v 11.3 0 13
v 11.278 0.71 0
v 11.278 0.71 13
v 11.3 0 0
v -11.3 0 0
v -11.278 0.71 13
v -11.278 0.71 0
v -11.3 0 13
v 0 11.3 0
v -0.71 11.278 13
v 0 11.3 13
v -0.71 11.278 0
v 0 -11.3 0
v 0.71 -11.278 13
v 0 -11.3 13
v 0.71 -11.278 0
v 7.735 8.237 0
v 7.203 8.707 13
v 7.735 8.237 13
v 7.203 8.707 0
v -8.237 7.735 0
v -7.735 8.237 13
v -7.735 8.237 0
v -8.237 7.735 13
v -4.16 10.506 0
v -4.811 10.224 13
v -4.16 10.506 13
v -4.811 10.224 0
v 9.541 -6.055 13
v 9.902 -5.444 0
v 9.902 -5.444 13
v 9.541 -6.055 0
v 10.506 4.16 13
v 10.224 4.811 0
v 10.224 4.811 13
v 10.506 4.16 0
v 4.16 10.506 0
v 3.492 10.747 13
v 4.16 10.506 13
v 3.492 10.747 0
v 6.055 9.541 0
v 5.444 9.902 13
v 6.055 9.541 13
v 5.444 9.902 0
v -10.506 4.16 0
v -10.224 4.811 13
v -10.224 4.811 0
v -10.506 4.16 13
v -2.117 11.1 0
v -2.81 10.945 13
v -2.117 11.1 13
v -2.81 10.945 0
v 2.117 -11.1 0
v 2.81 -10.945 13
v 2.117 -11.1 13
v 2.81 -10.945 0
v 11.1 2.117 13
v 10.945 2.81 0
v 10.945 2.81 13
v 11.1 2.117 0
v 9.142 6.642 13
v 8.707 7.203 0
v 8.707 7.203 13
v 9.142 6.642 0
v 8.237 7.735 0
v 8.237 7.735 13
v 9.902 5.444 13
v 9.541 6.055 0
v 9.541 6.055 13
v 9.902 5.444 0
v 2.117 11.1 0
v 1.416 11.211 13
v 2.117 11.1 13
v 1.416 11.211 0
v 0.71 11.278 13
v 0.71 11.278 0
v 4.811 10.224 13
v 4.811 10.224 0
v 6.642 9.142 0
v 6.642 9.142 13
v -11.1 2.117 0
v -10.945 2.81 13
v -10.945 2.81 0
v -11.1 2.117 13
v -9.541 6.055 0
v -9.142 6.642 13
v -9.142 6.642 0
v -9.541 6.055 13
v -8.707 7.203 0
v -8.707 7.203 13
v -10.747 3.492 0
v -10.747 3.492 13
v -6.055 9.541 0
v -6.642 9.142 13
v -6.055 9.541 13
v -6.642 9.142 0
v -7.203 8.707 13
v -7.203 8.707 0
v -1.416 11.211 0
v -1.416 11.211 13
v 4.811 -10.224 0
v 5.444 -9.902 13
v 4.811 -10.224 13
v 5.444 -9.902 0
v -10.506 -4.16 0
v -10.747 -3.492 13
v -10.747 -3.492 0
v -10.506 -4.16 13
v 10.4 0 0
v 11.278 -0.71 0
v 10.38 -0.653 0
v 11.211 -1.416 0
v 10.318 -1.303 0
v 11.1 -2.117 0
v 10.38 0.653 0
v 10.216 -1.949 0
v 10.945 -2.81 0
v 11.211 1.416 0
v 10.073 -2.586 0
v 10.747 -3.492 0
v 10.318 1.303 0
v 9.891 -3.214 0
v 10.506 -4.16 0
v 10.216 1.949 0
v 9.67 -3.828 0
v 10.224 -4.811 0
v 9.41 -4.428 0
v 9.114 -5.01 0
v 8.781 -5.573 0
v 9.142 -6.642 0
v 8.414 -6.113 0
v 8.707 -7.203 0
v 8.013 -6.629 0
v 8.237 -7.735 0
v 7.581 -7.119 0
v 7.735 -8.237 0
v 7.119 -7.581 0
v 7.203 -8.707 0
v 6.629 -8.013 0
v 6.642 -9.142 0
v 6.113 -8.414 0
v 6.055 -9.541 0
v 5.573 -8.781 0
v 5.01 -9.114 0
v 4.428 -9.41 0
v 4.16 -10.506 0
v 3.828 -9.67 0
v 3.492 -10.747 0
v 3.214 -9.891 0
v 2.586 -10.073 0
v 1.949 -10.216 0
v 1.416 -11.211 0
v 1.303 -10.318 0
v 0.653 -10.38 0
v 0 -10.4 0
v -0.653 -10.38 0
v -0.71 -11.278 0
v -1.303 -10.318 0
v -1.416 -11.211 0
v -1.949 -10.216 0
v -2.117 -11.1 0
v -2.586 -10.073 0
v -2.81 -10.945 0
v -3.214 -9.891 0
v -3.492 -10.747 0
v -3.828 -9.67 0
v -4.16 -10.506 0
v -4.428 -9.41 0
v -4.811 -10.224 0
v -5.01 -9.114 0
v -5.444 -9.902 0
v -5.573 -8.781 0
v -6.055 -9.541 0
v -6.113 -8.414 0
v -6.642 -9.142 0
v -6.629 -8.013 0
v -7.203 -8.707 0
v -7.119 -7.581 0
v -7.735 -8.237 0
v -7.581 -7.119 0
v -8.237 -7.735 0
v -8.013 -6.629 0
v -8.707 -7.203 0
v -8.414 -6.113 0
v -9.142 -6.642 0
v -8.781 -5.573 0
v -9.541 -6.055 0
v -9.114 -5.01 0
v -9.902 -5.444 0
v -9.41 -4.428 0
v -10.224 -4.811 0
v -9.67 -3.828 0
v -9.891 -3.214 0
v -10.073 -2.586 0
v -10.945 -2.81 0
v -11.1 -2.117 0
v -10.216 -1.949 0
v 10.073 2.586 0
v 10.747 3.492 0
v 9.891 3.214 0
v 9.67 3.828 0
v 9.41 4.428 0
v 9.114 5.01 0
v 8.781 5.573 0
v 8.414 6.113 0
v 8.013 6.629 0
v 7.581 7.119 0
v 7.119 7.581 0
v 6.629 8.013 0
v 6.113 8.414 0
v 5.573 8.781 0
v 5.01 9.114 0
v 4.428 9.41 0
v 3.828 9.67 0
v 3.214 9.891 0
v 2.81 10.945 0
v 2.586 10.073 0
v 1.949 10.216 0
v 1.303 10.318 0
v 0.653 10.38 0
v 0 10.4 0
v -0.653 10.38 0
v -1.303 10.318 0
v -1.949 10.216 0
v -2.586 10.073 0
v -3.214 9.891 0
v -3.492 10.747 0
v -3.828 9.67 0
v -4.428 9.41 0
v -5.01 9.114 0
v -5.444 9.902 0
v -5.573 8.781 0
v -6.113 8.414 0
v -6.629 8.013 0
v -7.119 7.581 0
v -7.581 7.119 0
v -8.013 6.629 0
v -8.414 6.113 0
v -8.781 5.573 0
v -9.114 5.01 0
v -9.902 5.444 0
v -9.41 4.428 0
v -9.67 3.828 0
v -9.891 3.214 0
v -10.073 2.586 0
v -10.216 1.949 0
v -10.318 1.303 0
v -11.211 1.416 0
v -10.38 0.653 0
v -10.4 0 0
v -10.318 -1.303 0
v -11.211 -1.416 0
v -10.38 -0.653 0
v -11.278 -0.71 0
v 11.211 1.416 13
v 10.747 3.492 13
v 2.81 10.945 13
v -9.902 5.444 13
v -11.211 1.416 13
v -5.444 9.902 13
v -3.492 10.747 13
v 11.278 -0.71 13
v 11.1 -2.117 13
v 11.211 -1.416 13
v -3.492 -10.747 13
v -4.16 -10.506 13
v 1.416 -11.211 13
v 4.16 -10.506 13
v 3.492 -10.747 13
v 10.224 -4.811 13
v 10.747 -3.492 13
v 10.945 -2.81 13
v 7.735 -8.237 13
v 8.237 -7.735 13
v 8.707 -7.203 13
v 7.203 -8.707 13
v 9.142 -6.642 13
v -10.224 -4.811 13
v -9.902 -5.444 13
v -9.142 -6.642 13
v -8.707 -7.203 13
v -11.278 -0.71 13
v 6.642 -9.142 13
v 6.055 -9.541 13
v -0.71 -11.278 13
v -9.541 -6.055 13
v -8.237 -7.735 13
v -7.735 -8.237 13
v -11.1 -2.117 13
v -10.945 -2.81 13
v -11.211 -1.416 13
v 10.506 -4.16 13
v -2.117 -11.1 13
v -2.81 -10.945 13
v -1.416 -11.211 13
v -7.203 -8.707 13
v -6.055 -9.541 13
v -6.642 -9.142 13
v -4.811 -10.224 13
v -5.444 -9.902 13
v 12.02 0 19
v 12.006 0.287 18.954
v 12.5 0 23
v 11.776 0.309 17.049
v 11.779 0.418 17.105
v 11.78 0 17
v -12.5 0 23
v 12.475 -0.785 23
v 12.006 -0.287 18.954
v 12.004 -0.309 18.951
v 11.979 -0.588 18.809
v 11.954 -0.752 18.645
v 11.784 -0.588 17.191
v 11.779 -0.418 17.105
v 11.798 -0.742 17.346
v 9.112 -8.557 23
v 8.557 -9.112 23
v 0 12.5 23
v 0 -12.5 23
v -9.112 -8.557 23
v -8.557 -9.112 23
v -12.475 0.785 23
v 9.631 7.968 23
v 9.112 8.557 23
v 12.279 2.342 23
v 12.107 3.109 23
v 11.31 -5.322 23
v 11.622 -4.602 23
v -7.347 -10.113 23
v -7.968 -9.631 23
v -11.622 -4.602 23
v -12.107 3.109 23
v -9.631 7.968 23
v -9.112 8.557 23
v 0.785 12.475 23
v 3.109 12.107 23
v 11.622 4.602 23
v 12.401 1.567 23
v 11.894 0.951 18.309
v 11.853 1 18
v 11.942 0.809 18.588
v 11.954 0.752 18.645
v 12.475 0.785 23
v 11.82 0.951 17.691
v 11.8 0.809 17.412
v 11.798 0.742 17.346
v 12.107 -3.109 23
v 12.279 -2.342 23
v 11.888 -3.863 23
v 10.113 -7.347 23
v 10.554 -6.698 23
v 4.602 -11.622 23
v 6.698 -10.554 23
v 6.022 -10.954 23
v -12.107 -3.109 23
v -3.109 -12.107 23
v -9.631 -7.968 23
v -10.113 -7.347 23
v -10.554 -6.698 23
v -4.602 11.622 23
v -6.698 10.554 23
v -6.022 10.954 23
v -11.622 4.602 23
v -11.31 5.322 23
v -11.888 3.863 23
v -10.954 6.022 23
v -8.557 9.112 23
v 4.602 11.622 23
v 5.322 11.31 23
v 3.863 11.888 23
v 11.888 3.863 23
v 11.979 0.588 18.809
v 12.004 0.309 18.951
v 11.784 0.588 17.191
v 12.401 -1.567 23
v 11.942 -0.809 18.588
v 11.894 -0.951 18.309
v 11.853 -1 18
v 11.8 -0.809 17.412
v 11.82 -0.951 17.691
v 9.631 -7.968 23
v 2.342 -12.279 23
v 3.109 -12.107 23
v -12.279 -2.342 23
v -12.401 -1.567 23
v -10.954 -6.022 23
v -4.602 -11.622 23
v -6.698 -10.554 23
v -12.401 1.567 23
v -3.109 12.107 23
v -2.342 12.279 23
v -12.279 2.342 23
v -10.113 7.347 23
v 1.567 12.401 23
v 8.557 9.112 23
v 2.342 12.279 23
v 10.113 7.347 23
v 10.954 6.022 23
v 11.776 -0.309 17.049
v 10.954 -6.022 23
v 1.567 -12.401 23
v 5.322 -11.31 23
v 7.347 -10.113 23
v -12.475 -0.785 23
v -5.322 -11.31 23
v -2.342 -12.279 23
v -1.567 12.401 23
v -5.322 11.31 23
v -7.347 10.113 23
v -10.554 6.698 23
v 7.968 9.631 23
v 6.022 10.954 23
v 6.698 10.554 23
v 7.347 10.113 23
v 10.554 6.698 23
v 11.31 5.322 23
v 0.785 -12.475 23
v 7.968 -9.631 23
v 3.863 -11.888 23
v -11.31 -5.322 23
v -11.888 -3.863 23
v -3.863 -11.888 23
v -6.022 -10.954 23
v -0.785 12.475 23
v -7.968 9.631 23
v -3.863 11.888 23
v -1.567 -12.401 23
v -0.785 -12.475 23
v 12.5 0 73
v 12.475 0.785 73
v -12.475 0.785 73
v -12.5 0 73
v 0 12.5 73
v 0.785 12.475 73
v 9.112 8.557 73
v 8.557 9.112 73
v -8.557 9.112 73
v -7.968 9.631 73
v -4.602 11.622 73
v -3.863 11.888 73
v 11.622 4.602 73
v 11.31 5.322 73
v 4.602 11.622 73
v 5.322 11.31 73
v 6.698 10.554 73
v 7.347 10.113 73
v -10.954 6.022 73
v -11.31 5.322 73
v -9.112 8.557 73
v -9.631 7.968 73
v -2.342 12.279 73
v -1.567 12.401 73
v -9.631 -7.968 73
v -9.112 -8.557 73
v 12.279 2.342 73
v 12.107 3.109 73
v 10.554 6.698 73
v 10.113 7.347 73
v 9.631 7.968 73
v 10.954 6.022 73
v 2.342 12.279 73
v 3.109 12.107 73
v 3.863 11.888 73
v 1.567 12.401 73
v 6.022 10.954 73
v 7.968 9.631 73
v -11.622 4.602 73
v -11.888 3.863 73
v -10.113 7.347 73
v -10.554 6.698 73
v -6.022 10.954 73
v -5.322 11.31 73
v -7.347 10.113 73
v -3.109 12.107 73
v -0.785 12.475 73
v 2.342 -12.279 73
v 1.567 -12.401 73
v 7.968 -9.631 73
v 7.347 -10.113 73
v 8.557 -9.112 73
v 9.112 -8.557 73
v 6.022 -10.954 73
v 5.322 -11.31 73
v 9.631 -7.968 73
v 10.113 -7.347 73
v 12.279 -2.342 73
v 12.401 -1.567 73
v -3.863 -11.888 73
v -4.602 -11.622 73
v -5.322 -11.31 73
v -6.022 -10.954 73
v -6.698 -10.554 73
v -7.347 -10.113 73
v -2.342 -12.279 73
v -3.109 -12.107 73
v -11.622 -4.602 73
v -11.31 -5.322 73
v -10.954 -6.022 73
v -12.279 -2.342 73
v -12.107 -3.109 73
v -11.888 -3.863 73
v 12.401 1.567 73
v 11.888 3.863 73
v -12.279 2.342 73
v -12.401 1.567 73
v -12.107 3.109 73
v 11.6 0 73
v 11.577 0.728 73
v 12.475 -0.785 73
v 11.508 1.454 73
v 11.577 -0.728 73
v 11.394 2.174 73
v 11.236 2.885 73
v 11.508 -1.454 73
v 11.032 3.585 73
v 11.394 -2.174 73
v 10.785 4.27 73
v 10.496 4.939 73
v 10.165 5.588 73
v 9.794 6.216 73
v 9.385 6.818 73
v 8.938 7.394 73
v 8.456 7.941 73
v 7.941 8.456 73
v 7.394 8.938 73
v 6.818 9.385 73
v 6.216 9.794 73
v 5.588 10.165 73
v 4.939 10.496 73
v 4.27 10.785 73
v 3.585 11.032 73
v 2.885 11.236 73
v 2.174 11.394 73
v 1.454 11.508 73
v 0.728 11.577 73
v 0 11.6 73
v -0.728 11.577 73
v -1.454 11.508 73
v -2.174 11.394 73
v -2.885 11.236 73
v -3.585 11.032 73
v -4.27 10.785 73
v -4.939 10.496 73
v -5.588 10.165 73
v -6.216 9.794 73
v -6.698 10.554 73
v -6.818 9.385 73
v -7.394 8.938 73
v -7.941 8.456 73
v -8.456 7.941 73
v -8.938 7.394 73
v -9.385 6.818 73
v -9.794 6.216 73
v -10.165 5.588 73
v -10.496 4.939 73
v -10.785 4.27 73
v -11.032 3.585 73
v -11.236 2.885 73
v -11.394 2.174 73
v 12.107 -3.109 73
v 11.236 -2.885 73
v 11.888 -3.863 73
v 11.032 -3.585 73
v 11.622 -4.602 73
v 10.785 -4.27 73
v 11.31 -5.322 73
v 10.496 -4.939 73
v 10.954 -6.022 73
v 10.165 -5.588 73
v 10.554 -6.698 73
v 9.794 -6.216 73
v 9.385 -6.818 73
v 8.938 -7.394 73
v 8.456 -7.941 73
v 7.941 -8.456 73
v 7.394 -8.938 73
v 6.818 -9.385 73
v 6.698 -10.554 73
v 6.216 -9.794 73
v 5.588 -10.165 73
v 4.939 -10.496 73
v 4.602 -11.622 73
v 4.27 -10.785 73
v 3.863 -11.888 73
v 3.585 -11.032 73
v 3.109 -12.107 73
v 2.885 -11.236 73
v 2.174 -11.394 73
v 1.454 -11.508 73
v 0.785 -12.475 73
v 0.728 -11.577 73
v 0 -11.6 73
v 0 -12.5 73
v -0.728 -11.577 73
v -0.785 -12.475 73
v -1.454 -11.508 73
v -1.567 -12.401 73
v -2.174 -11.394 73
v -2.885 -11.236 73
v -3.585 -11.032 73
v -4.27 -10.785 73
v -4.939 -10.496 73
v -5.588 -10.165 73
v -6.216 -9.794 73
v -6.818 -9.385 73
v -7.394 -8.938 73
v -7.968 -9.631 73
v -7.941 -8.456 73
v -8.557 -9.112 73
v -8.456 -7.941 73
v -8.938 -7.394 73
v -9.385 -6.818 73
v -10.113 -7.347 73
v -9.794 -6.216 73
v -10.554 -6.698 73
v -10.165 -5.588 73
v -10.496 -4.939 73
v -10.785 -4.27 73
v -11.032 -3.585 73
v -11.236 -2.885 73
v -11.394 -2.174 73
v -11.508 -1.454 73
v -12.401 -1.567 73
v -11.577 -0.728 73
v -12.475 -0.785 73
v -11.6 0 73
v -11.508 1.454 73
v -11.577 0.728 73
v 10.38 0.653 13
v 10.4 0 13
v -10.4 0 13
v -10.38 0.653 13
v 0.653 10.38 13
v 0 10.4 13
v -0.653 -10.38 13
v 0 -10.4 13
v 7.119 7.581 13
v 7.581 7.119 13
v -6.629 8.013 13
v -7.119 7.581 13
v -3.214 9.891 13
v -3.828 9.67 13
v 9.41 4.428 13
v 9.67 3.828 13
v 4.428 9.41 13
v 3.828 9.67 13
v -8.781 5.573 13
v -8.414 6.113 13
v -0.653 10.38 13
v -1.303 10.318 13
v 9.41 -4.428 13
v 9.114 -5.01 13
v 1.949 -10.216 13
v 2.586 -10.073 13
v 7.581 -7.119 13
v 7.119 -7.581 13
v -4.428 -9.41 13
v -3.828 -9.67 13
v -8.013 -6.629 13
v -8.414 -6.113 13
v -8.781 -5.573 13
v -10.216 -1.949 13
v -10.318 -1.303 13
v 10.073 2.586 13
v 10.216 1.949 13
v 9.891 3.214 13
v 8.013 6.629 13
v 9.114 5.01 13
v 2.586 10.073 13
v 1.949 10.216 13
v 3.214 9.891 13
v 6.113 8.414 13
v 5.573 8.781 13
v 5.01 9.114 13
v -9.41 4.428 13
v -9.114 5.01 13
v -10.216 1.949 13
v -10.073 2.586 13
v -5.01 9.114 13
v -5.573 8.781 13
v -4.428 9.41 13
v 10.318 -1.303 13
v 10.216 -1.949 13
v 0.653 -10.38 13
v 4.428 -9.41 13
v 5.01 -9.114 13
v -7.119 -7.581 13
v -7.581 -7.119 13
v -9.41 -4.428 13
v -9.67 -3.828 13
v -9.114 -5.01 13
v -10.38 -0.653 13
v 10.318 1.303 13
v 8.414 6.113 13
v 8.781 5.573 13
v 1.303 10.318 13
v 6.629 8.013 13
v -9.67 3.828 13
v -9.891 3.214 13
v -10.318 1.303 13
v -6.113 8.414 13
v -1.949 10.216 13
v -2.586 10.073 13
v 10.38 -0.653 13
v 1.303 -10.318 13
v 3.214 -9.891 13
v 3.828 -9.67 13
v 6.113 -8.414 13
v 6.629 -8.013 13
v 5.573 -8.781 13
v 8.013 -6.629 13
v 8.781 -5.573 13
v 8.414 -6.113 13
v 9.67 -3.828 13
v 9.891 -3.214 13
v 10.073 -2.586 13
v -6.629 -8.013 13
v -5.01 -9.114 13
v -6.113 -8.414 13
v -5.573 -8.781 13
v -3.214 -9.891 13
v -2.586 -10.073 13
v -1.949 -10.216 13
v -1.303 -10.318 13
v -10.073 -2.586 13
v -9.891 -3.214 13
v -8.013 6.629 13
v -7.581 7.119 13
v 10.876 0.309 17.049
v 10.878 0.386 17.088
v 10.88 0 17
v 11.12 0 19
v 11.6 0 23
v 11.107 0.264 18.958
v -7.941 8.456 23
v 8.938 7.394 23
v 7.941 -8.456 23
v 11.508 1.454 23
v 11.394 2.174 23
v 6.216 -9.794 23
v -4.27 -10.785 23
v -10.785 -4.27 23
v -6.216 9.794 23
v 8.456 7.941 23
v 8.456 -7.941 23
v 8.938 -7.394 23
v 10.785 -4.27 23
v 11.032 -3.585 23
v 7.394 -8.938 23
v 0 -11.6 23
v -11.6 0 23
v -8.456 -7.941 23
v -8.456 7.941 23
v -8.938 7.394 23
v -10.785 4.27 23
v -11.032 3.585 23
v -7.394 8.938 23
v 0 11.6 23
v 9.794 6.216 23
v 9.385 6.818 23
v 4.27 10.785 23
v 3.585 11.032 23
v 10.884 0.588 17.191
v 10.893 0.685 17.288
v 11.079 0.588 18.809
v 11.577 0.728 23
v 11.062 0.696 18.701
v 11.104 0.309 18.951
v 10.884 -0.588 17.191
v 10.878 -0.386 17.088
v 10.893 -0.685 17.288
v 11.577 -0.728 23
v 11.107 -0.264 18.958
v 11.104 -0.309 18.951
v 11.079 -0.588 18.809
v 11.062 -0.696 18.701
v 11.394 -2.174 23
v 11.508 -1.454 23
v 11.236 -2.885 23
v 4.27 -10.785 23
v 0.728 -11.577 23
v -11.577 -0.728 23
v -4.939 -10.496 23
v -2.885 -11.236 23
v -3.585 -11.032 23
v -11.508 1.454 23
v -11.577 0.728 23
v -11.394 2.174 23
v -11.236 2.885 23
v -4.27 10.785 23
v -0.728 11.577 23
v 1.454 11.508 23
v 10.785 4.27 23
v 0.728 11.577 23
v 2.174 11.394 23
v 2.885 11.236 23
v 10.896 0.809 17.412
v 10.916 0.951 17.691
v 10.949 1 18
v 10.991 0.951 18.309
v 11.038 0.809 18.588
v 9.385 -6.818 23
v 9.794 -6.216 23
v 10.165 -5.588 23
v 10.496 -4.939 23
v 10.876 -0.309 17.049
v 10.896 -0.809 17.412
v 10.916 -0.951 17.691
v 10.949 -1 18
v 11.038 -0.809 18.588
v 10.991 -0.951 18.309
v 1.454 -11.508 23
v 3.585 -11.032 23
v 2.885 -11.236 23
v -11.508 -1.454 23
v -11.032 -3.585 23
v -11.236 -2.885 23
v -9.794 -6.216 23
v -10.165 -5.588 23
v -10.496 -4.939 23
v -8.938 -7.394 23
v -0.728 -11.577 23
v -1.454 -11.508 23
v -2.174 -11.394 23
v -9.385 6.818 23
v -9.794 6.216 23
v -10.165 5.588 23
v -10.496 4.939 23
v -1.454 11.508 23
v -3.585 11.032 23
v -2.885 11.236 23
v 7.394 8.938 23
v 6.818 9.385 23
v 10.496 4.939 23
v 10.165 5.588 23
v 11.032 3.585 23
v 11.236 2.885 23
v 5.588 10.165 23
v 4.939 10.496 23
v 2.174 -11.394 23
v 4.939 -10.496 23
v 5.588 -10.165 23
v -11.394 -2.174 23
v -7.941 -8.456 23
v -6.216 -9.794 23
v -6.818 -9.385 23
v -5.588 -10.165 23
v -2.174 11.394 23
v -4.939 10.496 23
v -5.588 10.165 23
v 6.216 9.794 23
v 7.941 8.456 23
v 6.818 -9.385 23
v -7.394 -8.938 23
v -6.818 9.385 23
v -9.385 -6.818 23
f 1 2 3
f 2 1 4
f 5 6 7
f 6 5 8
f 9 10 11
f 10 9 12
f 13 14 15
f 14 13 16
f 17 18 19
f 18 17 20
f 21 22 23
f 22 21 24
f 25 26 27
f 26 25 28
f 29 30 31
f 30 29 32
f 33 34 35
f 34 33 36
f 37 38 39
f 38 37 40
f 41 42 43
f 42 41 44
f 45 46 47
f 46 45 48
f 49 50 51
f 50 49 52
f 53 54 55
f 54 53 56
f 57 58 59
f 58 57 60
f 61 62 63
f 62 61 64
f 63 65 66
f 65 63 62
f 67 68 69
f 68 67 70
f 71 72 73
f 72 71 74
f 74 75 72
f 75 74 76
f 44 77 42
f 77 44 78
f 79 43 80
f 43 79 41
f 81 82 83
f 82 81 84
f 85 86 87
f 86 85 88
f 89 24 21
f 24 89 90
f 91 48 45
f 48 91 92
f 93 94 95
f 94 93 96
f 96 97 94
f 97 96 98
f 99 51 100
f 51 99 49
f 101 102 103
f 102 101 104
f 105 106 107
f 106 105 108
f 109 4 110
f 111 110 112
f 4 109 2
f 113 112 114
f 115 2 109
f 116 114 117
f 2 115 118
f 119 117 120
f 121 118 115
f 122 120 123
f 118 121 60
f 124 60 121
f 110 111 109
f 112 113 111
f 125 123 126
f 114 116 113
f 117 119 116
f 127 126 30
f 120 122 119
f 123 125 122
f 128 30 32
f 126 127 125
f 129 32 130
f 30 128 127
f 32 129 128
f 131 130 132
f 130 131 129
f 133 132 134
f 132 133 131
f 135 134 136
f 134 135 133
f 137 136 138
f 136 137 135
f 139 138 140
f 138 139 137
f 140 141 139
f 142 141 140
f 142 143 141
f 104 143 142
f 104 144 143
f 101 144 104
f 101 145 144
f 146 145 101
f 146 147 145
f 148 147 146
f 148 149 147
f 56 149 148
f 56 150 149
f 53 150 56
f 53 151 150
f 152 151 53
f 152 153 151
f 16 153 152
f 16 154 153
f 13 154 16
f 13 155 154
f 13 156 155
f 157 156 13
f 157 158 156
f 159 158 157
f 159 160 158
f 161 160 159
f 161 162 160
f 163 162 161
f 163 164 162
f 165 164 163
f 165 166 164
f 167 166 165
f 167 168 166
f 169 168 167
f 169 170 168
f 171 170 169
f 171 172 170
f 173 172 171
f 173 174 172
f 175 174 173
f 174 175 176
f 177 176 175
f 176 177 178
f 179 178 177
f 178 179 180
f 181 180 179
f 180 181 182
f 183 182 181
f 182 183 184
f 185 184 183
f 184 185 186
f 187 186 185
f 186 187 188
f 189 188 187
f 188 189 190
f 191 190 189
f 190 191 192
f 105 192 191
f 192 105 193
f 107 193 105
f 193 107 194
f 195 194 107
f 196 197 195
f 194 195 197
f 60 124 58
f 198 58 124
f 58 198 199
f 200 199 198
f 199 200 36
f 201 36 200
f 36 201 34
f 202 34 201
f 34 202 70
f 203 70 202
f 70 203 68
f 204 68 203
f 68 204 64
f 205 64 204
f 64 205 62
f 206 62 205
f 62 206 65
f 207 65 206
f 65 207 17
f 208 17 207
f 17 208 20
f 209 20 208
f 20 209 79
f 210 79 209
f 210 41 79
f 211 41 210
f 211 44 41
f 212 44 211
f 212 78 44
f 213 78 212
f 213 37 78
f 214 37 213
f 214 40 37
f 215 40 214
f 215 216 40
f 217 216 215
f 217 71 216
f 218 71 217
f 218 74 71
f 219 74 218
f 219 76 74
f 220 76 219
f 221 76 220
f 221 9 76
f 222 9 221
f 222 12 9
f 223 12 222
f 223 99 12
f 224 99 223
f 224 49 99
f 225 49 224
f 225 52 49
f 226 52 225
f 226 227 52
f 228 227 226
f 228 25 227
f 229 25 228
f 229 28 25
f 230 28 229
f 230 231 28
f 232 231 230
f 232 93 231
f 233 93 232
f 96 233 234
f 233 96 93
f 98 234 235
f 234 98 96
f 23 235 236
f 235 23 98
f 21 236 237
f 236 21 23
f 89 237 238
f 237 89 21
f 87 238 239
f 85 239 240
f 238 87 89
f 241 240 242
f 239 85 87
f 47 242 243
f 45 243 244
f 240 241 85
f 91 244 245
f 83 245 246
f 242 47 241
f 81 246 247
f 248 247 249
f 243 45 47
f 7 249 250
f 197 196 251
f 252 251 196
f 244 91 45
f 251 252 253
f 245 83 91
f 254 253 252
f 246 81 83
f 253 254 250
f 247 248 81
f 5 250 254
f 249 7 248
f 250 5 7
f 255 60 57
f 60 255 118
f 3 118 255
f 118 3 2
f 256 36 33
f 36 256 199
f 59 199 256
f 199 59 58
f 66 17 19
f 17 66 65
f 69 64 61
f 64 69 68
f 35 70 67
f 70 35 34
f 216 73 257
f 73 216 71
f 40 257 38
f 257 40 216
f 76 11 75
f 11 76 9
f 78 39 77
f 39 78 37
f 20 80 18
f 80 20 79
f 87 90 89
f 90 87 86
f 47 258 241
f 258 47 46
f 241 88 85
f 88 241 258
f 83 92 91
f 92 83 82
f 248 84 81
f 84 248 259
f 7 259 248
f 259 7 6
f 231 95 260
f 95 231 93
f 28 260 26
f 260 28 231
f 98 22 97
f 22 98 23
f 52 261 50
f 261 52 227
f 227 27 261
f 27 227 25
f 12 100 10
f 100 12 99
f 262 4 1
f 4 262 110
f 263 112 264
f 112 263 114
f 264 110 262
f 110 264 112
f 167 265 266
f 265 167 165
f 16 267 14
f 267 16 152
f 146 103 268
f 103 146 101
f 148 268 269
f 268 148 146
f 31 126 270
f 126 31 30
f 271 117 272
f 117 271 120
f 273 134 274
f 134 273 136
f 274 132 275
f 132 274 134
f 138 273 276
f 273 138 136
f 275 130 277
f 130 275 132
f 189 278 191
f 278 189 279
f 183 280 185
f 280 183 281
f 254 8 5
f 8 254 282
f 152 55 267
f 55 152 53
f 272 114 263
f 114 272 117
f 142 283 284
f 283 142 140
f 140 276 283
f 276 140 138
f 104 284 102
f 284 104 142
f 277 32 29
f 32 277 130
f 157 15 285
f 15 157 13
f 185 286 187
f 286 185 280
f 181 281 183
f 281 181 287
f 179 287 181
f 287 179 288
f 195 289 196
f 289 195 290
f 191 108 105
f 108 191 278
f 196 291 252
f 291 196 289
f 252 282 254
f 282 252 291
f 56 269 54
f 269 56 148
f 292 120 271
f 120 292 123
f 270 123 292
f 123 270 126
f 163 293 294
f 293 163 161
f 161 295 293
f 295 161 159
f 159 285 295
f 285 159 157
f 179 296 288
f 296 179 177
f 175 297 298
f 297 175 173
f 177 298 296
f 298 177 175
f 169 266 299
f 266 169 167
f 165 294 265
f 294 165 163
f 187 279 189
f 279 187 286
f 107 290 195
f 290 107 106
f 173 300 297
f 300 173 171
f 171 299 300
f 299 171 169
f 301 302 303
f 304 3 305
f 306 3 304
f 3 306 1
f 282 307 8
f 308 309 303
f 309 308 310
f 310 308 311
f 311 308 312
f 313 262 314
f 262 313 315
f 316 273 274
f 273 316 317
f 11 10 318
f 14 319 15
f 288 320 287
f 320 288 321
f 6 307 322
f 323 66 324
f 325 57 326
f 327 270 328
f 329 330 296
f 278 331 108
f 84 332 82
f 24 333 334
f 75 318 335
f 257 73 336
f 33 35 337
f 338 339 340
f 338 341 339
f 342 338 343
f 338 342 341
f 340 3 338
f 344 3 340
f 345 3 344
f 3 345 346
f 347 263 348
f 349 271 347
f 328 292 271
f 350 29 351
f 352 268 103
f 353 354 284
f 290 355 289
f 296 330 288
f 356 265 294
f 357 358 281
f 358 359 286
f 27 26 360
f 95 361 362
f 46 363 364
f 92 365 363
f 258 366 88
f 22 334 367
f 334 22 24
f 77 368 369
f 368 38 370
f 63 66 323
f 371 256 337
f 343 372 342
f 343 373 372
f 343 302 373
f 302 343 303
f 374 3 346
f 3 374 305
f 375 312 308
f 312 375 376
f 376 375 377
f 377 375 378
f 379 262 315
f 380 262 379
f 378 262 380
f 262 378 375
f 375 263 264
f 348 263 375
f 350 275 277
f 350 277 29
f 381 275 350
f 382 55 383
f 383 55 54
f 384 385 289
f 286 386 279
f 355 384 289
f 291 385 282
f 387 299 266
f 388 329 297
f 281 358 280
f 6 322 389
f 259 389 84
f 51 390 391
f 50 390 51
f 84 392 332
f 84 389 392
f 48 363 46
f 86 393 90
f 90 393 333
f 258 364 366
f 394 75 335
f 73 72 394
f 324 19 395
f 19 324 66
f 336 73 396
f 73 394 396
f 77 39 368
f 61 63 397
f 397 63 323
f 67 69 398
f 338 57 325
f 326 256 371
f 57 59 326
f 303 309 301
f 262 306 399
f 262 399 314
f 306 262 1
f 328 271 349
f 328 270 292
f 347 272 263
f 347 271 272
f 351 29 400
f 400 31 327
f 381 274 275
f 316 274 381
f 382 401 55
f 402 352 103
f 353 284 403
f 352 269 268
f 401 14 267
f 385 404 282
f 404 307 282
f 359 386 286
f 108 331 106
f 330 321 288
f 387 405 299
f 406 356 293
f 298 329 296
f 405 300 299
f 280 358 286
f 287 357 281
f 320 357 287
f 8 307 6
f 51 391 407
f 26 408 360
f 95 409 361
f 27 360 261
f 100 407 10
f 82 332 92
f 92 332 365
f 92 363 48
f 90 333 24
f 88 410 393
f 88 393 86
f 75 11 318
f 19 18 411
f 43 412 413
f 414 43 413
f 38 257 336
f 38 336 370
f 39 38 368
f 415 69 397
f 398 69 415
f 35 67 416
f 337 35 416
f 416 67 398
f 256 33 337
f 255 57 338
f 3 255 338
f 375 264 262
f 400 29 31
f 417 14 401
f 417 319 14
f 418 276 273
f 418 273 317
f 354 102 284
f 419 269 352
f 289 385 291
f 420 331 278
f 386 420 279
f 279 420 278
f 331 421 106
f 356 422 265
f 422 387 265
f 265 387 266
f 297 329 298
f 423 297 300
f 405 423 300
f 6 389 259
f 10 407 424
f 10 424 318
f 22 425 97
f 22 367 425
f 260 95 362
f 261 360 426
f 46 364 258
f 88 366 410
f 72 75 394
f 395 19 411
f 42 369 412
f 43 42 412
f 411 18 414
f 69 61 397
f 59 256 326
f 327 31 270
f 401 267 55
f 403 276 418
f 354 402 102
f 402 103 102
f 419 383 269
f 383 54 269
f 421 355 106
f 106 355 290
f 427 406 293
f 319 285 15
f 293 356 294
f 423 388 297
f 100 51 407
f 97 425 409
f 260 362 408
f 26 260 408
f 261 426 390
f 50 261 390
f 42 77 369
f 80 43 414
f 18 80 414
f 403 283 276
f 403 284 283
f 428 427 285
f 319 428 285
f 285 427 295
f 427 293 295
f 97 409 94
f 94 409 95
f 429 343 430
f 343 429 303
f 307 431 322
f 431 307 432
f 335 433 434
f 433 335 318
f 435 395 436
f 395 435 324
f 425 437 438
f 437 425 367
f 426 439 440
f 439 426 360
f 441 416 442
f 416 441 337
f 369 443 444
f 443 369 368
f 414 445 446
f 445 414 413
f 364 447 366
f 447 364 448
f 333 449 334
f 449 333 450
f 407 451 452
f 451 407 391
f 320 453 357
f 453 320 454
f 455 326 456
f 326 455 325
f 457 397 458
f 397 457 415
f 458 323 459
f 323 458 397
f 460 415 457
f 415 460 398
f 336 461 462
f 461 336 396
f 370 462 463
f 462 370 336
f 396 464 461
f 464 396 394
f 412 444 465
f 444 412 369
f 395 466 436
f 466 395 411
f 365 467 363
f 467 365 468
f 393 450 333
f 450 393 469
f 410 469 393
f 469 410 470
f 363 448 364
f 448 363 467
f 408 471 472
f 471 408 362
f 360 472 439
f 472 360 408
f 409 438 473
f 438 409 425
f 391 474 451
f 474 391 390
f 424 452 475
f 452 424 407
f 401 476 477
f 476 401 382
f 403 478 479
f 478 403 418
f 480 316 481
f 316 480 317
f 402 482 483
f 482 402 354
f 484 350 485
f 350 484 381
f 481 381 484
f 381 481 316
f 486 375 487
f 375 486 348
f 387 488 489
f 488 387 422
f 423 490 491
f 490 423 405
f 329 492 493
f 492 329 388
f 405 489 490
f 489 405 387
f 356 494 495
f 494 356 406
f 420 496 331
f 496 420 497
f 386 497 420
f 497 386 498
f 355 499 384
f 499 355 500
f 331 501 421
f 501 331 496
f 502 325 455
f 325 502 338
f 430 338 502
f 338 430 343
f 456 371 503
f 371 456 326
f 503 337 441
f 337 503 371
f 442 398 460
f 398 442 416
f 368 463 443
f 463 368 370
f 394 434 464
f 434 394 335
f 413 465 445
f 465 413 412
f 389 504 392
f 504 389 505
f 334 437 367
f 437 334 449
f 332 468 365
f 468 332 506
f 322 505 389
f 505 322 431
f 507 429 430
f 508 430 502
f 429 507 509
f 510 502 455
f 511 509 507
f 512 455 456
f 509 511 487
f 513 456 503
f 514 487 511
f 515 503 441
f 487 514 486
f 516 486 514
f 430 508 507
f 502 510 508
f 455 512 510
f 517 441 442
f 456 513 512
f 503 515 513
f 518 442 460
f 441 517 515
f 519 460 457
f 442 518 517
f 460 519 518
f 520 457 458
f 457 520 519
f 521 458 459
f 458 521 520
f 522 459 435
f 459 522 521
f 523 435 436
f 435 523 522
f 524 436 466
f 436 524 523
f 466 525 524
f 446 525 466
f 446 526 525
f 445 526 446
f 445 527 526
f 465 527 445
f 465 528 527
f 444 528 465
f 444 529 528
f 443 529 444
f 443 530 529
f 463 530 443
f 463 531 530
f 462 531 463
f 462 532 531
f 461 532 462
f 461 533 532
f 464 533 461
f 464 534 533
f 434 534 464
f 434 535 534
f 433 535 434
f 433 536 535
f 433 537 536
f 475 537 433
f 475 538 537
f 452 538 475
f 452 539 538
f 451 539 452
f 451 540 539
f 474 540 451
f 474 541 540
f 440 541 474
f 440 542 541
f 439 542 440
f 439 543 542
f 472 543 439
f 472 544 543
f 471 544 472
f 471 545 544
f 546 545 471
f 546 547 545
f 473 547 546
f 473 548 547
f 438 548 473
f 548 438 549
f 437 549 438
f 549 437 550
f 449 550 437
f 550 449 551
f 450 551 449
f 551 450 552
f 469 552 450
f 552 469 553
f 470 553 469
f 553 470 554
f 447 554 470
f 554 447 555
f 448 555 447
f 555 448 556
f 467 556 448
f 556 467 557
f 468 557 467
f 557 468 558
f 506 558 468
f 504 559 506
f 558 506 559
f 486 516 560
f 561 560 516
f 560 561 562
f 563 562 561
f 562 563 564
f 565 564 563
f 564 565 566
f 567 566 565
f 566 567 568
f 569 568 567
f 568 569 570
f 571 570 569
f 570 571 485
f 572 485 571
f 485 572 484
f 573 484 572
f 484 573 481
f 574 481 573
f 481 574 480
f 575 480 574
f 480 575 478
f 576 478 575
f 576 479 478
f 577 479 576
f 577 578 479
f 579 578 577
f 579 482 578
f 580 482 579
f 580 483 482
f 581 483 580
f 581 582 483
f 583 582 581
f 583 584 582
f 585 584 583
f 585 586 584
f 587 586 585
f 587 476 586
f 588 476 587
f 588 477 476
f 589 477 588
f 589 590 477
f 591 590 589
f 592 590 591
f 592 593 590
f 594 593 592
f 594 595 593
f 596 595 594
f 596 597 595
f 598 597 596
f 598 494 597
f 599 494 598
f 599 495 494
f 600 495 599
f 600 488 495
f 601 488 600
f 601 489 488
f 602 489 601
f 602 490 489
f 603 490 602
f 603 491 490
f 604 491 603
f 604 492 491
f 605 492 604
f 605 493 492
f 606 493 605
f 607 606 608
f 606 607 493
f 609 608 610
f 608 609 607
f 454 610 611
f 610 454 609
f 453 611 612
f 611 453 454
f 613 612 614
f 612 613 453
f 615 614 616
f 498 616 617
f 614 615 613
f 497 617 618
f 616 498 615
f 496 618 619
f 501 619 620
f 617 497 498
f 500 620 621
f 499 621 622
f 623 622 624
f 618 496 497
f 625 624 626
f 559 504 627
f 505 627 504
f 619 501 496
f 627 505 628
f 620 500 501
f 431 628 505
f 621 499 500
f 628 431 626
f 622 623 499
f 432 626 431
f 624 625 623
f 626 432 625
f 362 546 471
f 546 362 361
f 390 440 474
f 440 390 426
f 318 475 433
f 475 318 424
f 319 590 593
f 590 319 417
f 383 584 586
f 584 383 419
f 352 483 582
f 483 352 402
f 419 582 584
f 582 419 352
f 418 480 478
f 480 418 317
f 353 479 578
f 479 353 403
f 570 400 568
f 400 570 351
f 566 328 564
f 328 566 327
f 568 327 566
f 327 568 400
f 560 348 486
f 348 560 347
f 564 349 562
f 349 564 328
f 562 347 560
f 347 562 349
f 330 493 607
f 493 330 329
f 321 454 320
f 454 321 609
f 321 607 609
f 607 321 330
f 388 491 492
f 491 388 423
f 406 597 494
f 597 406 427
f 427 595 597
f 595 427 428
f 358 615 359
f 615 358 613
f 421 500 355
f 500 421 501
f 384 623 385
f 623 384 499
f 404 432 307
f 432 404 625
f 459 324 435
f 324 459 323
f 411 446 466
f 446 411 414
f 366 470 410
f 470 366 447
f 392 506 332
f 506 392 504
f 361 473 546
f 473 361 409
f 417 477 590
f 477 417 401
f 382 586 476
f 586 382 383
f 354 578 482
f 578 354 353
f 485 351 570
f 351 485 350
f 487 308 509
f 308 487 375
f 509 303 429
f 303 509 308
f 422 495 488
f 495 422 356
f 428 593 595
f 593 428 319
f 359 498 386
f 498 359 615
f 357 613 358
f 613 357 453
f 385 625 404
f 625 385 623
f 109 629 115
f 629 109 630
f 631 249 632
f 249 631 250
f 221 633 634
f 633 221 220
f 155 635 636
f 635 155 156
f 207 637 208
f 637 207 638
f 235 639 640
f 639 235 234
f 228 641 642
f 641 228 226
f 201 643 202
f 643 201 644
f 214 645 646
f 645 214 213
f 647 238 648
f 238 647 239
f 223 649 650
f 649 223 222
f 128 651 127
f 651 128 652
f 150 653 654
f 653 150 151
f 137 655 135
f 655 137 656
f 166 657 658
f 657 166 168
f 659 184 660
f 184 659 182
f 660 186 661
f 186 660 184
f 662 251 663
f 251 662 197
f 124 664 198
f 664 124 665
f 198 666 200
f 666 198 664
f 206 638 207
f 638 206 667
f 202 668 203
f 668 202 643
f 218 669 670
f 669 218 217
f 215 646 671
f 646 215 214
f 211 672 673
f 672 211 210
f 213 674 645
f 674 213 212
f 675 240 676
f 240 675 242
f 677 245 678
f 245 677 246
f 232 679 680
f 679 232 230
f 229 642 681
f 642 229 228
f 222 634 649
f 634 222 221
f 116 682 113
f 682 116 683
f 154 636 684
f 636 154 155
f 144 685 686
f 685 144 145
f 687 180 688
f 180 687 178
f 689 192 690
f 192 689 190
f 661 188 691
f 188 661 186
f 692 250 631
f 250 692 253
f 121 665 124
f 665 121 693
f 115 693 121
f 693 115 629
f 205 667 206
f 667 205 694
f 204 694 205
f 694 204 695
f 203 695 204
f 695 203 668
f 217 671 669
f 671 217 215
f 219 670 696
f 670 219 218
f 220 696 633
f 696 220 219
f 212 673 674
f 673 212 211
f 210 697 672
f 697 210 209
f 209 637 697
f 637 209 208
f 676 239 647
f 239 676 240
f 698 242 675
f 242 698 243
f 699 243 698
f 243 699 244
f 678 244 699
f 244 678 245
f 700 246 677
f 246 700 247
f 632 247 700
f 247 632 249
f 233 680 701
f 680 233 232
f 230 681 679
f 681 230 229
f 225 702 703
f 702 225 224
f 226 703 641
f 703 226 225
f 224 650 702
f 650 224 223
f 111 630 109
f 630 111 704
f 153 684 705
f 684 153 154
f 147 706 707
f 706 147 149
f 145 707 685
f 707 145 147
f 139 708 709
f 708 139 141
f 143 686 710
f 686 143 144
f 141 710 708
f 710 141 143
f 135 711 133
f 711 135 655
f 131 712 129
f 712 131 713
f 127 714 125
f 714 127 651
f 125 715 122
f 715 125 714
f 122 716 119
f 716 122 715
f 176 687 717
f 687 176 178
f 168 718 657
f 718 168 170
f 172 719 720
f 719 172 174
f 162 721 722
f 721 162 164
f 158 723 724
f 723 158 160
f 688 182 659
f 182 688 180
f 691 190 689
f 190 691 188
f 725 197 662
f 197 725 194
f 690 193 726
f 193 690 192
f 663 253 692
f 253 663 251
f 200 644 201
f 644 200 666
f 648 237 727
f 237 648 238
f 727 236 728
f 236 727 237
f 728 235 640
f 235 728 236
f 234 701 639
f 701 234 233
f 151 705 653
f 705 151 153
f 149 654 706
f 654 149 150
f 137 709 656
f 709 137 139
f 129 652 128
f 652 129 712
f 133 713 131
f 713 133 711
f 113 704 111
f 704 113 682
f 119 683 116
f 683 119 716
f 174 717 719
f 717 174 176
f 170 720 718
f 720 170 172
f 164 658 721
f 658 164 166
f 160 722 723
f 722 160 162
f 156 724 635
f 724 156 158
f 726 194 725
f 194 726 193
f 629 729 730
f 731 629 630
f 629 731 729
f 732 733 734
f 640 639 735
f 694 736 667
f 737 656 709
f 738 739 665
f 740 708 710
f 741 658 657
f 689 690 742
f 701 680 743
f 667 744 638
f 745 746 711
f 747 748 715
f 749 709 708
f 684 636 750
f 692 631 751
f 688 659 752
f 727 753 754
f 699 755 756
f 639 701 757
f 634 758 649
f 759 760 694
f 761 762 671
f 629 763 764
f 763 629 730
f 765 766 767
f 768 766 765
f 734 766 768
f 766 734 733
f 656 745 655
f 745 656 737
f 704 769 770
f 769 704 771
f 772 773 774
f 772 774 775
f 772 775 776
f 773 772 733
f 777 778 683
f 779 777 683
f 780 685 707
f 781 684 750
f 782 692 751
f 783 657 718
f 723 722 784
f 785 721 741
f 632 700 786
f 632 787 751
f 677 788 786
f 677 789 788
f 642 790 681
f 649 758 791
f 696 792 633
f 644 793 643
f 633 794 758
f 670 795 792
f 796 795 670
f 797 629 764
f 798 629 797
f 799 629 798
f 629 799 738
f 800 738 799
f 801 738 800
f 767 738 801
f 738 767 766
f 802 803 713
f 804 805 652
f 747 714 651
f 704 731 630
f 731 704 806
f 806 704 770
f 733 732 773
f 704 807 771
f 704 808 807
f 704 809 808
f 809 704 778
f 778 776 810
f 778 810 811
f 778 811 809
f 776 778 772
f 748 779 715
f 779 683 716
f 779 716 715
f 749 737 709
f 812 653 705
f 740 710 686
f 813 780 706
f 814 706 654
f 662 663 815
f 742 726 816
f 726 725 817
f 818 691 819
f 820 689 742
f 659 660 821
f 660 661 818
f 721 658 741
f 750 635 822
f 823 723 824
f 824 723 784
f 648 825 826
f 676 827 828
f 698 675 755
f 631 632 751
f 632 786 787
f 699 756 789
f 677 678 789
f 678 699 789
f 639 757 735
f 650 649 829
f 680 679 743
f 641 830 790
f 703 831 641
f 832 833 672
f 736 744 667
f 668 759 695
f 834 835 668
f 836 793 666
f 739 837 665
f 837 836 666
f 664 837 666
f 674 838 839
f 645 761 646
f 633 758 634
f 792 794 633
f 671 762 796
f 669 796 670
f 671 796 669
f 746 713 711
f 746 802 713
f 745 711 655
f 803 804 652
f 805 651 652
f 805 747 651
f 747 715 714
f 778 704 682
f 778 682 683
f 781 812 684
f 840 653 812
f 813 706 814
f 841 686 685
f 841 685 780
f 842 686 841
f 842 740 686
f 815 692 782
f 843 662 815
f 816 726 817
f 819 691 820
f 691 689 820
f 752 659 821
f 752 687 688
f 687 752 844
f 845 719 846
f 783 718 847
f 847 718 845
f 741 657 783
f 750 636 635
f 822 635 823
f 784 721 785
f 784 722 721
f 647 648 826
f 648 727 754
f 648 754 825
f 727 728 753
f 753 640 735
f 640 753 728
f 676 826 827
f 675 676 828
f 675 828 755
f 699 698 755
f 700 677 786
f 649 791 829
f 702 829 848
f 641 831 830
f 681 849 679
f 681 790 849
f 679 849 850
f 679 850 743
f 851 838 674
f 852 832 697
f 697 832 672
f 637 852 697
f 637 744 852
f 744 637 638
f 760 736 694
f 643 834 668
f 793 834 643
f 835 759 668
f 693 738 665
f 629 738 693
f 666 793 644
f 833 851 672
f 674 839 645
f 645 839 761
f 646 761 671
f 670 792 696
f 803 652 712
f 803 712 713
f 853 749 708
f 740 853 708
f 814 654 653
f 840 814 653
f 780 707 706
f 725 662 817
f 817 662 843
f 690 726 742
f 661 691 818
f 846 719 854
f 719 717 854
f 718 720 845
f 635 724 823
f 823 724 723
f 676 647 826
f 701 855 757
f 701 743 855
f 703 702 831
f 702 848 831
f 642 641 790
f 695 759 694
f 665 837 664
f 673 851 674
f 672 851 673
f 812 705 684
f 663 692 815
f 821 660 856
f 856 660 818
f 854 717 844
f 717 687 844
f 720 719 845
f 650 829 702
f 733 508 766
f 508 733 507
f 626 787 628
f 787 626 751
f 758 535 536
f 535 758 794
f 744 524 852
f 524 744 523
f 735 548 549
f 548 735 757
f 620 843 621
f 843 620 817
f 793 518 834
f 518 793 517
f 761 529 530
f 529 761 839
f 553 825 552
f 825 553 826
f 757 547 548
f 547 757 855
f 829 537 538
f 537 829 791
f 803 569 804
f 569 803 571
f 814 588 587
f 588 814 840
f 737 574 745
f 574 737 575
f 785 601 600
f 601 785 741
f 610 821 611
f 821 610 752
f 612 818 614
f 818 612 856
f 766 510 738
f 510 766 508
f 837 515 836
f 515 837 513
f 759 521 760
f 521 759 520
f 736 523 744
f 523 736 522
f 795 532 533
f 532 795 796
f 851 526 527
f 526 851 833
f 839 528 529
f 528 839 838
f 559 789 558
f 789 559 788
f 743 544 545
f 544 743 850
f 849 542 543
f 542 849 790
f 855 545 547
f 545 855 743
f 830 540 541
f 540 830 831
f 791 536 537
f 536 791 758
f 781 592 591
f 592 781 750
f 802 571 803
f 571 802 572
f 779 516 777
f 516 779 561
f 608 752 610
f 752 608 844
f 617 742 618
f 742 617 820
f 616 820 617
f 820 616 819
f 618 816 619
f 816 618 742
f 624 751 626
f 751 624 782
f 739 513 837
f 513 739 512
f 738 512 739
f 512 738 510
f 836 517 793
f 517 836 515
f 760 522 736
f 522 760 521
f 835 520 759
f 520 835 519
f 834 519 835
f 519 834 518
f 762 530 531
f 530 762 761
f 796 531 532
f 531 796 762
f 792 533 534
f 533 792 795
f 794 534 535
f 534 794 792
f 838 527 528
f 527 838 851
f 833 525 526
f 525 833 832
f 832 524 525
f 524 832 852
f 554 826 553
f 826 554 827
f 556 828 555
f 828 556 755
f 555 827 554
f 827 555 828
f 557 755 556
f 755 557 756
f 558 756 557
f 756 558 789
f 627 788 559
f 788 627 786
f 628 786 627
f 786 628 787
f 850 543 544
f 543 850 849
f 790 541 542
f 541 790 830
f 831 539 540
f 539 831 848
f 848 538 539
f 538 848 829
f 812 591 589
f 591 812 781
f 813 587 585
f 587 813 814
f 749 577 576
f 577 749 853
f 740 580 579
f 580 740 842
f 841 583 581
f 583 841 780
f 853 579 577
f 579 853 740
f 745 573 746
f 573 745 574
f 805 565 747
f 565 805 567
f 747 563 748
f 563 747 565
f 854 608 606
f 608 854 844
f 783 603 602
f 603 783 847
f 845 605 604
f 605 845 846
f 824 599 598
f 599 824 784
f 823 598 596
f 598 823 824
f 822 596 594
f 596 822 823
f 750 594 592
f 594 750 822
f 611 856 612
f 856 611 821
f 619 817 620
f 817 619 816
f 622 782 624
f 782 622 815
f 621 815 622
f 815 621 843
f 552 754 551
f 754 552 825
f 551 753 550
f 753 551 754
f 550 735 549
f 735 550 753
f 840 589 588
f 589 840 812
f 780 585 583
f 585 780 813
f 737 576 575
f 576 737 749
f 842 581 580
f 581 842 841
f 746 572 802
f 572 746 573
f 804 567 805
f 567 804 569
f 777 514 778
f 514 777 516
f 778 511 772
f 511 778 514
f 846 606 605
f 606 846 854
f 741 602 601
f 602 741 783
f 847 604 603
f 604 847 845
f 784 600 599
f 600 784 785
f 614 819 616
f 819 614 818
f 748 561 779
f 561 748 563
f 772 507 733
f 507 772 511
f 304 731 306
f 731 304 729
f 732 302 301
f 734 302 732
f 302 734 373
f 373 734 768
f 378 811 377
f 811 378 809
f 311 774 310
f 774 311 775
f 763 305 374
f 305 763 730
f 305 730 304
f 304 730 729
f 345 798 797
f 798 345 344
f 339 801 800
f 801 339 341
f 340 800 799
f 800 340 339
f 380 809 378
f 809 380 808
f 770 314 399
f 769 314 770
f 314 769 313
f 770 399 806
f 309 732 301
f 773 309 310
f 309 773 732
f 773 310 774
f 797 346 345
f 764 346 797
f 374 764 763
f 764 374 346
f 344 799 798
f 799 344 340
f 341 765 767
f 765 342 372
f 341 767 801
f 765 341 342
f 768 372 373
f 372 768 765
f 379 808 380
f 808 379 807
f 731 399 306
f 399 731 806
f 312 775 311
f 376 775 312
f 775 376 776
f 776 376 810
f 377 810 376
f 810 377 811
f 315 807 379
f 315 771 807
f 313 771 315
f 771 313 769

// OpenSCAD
// file: ../config.scad
//========== ROCKET PARAMETERS ==========//

//rocket
wall_thickness = 0.9;
motorwall_thickness = 2;
module_height = 140;


//liftoff_ring
liftoff_ring = true;
ring_diameter = 4.2;
ring_thickness = 1;
ring_height = 10;
ring_translate_angle = 11.9;

//stabilizer
stabilizer_thickness = 0.8;
stabilizer_count = 3;
stabilizer_height = 60;
stabilizer_width = 30;
stabilizer_angle = 50;

//motor
motor_diameter = 18.6;
motor_height = 70;

//joint
joint_height = 13;
joint_space = 0.3;
joint_thickness = 1;
joint_transition_height = 2;

//container
container_diameter = 25;
container_height = 50;
container_transition = 10;
hole_diameter = 2;

//nosecone
cone_height = 50;

//parachute ring
parachute_ring_diameter = 11;
parachute_ring_thickness = 2;
parachute_ring_hole_count = 6;
parachute_ring_hole_distance = 0.75;
parachute_ring_hole_diameter = 1.5;

outer_diameter = motor_diameter+motorwall_thickness*2;

//========== LAUNCHPAD PARAMETERS ==========//

//launchpad
launch_rod_diameter = 1.5;
launch_rod_height = 250;
launchpad_width = 120;
launchpad_deepth = 120;
launchpad_height = 40;
launchpad_fire_hole = 20;
// main file
include <../config.scad>

module container() {
    difference() {
        union() {
            cylinder(d=outer_diameter, h=joint_height, $fn=100);

            translate([0, 0, joint_height])
                cylinder(d1=outer_diameter, d2=container_diameter, h=container_transition, $fn=100);

            translate([0, 0, joint_height+container_transition])
                cylinder(d=container_diameter, h=container_height, $fn=100);
        }

        cylinder(d=outer_diameter-wall_thickness*2, h=joint_height, $fn=100);

        translate([0, 0, joint_height])
            cylinder(d1=outer_diameter-wall_thickness*2, d2=container_diameter-wall_thickness*2, h=container_transition, $fn=100);

        translate([0, 0, joint_height+container_transition])
            cylinder(d=container_diameter-wall_thickness*2, h=container_height, $fn=100);

        translate([0, 0, joint_height+container_transition/2])
            rotate([0, 90, 0])
                cylinder(d=hole_diameter, h=container_diameter, $fn=20);
    }
}

container();
